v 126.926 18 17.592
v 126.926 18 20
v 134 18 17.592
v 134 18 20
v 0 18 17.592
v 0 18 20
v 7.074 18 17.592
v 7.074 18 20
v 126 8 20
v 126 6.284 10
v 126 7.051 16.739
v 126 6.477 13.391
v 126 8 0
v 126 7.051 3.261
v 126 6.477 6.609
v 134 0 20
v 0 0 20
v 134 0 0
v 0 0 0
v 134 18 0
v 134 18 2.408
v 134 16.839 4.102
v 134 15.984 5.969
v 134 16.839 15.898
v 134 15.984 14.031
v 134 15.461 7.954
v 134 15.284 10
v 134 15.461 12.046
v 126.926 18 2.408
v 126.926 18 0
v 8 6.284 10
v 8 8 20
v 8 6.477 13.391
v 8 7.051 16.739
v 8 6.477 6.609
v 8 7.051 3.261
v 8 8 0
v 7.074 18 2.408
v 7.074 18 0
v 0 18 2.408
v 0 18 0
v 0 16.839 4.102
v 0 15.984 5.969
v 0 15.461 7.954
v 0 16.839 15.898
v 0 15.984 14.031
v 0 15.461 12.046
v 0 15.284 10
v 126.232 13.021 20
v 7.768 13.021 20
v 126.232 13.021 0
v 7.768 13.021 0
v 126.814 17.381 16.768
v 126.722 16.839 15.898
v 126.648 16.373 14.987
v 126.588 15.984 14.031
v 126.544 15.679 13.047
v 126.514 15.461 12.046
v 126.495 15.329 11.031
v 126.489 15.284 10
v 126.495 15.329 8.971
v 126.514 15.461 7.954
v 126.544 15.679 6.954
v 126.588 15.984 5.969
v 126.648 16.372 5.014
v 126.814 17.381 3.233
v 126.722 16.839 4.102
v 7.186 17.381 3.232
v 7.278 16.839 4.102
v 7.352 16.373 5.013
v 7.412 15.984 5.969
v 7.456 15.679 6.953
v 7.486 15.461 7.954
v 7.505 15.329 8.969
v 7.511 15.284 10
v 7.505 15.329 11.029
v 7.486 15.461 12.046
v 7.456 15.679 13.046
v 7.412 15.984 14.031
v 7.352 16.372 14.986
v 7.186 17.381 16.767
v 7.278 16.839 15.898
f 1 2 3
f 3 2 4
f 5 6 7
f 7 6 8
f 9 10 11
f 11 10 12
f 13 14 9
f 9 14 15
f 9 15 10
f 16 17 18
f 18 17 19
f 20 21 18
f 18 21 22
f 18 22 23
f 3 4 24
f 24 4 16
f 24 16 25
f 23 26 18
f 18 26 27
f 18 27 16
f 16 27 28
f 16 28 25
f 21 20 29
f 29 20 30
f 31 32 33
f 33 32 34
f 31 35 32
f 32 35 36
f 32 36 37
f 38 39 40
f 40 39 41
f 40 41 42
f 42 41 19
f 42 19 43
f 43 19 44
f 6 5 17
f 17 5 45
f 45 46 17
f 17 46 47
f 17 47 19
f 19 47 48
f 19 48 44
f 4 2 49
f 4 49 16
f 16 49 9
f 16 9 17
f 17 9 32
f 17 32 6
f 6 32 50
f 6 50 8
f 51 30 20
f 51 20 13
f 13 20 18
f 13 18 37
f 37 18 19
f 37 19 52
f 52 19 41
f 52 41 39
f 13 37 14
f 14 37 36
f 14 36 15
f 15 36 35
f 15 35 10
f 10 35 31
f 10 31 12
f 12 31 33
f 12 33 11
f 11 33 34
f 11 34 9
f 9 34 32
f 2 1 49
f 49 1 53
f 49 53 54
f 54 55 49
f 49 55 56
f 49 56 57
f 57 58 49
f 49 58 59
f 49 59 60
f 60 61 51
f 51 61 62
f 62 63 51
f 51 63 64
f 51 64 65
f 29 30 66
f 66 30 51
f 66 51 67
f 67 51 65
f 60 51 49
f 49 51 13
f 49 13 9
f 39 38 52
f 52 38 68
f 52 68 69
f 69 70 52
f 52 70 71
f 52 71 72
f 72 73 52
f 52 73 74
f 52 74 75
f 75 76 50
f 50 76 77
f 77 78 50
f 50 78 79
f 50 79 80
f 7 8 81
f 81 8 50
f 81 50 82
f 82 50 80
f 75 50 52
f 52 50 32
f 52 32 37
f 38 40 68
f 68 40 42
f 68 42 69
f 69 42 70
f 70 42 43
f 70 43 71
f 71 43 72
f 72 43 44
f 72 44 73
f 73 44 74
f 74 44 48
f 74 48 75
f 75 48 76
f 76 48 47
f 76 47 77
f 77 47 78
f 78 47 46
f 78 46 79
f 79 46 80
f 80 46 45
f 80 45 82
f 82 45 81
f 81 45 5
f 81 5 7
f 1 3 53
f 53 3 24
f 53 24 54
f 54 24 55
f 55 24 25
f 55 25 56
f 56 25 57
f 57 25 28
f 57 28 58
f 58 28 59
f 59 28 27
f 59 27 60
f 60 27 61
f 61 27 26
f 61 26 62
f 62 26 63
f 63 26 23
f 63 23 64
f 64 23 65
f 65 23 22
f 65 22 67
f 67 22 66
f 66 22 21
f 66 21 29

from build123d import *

# Parameters (mm, degrees)
RESSALTO_EXTRUS_O1_DEPTH = 20
CORTE_EXTRUS_O1_DEPTH    = 118
CORTE_EXTRUS_O2_DEPTH    = 137.674796506
ESBO_O4_R                = 11.969366969
CORTE_EXTRUS_O3_DEPTH    = 137.674796506


with BuildPart() as part:
    # Esboço1 → Ressalto-extrusão1 (new body)
    with BuildSketch(Plane.XY):
        Polygon((0, 0), (0, 18), (8, 18), (8, 8), (126, 8), (126, 18), (134, 18), (134, 0), align=None)
    extrude(amount=RESSALTO_EXTRUS_O1_DEPTH)

    # Esboço2 → Corte-extrusão1 (cut)
    with BuildSketch(Plane(origin=(8, 0, 0), x_dir=(0, 0, -1), z_dir=(1, 0, 0))):
        with BuildLine():
            Line((-20, 8), (0, 8))
            ThreePointArc((0, 8), (-10, 6.284271247), (-20, 8))
        make_face()
    extrude(amount=CORTE_EXTRUS_O1_DEPTH, mode=Mode.SUBTRACT)

    # Esboço3 → Corte-extrusão2 (cut, through all)
    with BuildSketch(Plane(origin=(0, 0, 0), x_dir=(-1, 0, 0), z_dir=(0, 0, -1))):
        with BuildLine():
            Line((-8, 18), (-7.073837994, 18))
            ThreePointArc((-7.073837994, 18), (-7.767965092, 13.021398611), (-8, 8))
            Line((-8, 8), (-8, 18))
        make_face()
        with BuildLine():
            Line((-126, 8), (-126, 18))
            Line((-126, 18), (-126.926162006, 18))
            ThreePointArc((-126.926162006, 18), (-126.232034908, 13.021398611), (-126, 8))
        make_face()
    extrude(amount=-CORTE_EXTRUS_O2_DEPTH, mode=Mode.SUBTRACT)

    # Esboço4 → Corte-extrusão3 (cut, through all)
    with BuildSketch(Plane.ZY):
        with Locations((10, 27.253795072)):
            Circle(ESBO_O4_R)
    extrude(amount=-CORTE_EXTRUS_O3_DEPTH, mode=Mode.SUBTRACT)


solid = part.part
